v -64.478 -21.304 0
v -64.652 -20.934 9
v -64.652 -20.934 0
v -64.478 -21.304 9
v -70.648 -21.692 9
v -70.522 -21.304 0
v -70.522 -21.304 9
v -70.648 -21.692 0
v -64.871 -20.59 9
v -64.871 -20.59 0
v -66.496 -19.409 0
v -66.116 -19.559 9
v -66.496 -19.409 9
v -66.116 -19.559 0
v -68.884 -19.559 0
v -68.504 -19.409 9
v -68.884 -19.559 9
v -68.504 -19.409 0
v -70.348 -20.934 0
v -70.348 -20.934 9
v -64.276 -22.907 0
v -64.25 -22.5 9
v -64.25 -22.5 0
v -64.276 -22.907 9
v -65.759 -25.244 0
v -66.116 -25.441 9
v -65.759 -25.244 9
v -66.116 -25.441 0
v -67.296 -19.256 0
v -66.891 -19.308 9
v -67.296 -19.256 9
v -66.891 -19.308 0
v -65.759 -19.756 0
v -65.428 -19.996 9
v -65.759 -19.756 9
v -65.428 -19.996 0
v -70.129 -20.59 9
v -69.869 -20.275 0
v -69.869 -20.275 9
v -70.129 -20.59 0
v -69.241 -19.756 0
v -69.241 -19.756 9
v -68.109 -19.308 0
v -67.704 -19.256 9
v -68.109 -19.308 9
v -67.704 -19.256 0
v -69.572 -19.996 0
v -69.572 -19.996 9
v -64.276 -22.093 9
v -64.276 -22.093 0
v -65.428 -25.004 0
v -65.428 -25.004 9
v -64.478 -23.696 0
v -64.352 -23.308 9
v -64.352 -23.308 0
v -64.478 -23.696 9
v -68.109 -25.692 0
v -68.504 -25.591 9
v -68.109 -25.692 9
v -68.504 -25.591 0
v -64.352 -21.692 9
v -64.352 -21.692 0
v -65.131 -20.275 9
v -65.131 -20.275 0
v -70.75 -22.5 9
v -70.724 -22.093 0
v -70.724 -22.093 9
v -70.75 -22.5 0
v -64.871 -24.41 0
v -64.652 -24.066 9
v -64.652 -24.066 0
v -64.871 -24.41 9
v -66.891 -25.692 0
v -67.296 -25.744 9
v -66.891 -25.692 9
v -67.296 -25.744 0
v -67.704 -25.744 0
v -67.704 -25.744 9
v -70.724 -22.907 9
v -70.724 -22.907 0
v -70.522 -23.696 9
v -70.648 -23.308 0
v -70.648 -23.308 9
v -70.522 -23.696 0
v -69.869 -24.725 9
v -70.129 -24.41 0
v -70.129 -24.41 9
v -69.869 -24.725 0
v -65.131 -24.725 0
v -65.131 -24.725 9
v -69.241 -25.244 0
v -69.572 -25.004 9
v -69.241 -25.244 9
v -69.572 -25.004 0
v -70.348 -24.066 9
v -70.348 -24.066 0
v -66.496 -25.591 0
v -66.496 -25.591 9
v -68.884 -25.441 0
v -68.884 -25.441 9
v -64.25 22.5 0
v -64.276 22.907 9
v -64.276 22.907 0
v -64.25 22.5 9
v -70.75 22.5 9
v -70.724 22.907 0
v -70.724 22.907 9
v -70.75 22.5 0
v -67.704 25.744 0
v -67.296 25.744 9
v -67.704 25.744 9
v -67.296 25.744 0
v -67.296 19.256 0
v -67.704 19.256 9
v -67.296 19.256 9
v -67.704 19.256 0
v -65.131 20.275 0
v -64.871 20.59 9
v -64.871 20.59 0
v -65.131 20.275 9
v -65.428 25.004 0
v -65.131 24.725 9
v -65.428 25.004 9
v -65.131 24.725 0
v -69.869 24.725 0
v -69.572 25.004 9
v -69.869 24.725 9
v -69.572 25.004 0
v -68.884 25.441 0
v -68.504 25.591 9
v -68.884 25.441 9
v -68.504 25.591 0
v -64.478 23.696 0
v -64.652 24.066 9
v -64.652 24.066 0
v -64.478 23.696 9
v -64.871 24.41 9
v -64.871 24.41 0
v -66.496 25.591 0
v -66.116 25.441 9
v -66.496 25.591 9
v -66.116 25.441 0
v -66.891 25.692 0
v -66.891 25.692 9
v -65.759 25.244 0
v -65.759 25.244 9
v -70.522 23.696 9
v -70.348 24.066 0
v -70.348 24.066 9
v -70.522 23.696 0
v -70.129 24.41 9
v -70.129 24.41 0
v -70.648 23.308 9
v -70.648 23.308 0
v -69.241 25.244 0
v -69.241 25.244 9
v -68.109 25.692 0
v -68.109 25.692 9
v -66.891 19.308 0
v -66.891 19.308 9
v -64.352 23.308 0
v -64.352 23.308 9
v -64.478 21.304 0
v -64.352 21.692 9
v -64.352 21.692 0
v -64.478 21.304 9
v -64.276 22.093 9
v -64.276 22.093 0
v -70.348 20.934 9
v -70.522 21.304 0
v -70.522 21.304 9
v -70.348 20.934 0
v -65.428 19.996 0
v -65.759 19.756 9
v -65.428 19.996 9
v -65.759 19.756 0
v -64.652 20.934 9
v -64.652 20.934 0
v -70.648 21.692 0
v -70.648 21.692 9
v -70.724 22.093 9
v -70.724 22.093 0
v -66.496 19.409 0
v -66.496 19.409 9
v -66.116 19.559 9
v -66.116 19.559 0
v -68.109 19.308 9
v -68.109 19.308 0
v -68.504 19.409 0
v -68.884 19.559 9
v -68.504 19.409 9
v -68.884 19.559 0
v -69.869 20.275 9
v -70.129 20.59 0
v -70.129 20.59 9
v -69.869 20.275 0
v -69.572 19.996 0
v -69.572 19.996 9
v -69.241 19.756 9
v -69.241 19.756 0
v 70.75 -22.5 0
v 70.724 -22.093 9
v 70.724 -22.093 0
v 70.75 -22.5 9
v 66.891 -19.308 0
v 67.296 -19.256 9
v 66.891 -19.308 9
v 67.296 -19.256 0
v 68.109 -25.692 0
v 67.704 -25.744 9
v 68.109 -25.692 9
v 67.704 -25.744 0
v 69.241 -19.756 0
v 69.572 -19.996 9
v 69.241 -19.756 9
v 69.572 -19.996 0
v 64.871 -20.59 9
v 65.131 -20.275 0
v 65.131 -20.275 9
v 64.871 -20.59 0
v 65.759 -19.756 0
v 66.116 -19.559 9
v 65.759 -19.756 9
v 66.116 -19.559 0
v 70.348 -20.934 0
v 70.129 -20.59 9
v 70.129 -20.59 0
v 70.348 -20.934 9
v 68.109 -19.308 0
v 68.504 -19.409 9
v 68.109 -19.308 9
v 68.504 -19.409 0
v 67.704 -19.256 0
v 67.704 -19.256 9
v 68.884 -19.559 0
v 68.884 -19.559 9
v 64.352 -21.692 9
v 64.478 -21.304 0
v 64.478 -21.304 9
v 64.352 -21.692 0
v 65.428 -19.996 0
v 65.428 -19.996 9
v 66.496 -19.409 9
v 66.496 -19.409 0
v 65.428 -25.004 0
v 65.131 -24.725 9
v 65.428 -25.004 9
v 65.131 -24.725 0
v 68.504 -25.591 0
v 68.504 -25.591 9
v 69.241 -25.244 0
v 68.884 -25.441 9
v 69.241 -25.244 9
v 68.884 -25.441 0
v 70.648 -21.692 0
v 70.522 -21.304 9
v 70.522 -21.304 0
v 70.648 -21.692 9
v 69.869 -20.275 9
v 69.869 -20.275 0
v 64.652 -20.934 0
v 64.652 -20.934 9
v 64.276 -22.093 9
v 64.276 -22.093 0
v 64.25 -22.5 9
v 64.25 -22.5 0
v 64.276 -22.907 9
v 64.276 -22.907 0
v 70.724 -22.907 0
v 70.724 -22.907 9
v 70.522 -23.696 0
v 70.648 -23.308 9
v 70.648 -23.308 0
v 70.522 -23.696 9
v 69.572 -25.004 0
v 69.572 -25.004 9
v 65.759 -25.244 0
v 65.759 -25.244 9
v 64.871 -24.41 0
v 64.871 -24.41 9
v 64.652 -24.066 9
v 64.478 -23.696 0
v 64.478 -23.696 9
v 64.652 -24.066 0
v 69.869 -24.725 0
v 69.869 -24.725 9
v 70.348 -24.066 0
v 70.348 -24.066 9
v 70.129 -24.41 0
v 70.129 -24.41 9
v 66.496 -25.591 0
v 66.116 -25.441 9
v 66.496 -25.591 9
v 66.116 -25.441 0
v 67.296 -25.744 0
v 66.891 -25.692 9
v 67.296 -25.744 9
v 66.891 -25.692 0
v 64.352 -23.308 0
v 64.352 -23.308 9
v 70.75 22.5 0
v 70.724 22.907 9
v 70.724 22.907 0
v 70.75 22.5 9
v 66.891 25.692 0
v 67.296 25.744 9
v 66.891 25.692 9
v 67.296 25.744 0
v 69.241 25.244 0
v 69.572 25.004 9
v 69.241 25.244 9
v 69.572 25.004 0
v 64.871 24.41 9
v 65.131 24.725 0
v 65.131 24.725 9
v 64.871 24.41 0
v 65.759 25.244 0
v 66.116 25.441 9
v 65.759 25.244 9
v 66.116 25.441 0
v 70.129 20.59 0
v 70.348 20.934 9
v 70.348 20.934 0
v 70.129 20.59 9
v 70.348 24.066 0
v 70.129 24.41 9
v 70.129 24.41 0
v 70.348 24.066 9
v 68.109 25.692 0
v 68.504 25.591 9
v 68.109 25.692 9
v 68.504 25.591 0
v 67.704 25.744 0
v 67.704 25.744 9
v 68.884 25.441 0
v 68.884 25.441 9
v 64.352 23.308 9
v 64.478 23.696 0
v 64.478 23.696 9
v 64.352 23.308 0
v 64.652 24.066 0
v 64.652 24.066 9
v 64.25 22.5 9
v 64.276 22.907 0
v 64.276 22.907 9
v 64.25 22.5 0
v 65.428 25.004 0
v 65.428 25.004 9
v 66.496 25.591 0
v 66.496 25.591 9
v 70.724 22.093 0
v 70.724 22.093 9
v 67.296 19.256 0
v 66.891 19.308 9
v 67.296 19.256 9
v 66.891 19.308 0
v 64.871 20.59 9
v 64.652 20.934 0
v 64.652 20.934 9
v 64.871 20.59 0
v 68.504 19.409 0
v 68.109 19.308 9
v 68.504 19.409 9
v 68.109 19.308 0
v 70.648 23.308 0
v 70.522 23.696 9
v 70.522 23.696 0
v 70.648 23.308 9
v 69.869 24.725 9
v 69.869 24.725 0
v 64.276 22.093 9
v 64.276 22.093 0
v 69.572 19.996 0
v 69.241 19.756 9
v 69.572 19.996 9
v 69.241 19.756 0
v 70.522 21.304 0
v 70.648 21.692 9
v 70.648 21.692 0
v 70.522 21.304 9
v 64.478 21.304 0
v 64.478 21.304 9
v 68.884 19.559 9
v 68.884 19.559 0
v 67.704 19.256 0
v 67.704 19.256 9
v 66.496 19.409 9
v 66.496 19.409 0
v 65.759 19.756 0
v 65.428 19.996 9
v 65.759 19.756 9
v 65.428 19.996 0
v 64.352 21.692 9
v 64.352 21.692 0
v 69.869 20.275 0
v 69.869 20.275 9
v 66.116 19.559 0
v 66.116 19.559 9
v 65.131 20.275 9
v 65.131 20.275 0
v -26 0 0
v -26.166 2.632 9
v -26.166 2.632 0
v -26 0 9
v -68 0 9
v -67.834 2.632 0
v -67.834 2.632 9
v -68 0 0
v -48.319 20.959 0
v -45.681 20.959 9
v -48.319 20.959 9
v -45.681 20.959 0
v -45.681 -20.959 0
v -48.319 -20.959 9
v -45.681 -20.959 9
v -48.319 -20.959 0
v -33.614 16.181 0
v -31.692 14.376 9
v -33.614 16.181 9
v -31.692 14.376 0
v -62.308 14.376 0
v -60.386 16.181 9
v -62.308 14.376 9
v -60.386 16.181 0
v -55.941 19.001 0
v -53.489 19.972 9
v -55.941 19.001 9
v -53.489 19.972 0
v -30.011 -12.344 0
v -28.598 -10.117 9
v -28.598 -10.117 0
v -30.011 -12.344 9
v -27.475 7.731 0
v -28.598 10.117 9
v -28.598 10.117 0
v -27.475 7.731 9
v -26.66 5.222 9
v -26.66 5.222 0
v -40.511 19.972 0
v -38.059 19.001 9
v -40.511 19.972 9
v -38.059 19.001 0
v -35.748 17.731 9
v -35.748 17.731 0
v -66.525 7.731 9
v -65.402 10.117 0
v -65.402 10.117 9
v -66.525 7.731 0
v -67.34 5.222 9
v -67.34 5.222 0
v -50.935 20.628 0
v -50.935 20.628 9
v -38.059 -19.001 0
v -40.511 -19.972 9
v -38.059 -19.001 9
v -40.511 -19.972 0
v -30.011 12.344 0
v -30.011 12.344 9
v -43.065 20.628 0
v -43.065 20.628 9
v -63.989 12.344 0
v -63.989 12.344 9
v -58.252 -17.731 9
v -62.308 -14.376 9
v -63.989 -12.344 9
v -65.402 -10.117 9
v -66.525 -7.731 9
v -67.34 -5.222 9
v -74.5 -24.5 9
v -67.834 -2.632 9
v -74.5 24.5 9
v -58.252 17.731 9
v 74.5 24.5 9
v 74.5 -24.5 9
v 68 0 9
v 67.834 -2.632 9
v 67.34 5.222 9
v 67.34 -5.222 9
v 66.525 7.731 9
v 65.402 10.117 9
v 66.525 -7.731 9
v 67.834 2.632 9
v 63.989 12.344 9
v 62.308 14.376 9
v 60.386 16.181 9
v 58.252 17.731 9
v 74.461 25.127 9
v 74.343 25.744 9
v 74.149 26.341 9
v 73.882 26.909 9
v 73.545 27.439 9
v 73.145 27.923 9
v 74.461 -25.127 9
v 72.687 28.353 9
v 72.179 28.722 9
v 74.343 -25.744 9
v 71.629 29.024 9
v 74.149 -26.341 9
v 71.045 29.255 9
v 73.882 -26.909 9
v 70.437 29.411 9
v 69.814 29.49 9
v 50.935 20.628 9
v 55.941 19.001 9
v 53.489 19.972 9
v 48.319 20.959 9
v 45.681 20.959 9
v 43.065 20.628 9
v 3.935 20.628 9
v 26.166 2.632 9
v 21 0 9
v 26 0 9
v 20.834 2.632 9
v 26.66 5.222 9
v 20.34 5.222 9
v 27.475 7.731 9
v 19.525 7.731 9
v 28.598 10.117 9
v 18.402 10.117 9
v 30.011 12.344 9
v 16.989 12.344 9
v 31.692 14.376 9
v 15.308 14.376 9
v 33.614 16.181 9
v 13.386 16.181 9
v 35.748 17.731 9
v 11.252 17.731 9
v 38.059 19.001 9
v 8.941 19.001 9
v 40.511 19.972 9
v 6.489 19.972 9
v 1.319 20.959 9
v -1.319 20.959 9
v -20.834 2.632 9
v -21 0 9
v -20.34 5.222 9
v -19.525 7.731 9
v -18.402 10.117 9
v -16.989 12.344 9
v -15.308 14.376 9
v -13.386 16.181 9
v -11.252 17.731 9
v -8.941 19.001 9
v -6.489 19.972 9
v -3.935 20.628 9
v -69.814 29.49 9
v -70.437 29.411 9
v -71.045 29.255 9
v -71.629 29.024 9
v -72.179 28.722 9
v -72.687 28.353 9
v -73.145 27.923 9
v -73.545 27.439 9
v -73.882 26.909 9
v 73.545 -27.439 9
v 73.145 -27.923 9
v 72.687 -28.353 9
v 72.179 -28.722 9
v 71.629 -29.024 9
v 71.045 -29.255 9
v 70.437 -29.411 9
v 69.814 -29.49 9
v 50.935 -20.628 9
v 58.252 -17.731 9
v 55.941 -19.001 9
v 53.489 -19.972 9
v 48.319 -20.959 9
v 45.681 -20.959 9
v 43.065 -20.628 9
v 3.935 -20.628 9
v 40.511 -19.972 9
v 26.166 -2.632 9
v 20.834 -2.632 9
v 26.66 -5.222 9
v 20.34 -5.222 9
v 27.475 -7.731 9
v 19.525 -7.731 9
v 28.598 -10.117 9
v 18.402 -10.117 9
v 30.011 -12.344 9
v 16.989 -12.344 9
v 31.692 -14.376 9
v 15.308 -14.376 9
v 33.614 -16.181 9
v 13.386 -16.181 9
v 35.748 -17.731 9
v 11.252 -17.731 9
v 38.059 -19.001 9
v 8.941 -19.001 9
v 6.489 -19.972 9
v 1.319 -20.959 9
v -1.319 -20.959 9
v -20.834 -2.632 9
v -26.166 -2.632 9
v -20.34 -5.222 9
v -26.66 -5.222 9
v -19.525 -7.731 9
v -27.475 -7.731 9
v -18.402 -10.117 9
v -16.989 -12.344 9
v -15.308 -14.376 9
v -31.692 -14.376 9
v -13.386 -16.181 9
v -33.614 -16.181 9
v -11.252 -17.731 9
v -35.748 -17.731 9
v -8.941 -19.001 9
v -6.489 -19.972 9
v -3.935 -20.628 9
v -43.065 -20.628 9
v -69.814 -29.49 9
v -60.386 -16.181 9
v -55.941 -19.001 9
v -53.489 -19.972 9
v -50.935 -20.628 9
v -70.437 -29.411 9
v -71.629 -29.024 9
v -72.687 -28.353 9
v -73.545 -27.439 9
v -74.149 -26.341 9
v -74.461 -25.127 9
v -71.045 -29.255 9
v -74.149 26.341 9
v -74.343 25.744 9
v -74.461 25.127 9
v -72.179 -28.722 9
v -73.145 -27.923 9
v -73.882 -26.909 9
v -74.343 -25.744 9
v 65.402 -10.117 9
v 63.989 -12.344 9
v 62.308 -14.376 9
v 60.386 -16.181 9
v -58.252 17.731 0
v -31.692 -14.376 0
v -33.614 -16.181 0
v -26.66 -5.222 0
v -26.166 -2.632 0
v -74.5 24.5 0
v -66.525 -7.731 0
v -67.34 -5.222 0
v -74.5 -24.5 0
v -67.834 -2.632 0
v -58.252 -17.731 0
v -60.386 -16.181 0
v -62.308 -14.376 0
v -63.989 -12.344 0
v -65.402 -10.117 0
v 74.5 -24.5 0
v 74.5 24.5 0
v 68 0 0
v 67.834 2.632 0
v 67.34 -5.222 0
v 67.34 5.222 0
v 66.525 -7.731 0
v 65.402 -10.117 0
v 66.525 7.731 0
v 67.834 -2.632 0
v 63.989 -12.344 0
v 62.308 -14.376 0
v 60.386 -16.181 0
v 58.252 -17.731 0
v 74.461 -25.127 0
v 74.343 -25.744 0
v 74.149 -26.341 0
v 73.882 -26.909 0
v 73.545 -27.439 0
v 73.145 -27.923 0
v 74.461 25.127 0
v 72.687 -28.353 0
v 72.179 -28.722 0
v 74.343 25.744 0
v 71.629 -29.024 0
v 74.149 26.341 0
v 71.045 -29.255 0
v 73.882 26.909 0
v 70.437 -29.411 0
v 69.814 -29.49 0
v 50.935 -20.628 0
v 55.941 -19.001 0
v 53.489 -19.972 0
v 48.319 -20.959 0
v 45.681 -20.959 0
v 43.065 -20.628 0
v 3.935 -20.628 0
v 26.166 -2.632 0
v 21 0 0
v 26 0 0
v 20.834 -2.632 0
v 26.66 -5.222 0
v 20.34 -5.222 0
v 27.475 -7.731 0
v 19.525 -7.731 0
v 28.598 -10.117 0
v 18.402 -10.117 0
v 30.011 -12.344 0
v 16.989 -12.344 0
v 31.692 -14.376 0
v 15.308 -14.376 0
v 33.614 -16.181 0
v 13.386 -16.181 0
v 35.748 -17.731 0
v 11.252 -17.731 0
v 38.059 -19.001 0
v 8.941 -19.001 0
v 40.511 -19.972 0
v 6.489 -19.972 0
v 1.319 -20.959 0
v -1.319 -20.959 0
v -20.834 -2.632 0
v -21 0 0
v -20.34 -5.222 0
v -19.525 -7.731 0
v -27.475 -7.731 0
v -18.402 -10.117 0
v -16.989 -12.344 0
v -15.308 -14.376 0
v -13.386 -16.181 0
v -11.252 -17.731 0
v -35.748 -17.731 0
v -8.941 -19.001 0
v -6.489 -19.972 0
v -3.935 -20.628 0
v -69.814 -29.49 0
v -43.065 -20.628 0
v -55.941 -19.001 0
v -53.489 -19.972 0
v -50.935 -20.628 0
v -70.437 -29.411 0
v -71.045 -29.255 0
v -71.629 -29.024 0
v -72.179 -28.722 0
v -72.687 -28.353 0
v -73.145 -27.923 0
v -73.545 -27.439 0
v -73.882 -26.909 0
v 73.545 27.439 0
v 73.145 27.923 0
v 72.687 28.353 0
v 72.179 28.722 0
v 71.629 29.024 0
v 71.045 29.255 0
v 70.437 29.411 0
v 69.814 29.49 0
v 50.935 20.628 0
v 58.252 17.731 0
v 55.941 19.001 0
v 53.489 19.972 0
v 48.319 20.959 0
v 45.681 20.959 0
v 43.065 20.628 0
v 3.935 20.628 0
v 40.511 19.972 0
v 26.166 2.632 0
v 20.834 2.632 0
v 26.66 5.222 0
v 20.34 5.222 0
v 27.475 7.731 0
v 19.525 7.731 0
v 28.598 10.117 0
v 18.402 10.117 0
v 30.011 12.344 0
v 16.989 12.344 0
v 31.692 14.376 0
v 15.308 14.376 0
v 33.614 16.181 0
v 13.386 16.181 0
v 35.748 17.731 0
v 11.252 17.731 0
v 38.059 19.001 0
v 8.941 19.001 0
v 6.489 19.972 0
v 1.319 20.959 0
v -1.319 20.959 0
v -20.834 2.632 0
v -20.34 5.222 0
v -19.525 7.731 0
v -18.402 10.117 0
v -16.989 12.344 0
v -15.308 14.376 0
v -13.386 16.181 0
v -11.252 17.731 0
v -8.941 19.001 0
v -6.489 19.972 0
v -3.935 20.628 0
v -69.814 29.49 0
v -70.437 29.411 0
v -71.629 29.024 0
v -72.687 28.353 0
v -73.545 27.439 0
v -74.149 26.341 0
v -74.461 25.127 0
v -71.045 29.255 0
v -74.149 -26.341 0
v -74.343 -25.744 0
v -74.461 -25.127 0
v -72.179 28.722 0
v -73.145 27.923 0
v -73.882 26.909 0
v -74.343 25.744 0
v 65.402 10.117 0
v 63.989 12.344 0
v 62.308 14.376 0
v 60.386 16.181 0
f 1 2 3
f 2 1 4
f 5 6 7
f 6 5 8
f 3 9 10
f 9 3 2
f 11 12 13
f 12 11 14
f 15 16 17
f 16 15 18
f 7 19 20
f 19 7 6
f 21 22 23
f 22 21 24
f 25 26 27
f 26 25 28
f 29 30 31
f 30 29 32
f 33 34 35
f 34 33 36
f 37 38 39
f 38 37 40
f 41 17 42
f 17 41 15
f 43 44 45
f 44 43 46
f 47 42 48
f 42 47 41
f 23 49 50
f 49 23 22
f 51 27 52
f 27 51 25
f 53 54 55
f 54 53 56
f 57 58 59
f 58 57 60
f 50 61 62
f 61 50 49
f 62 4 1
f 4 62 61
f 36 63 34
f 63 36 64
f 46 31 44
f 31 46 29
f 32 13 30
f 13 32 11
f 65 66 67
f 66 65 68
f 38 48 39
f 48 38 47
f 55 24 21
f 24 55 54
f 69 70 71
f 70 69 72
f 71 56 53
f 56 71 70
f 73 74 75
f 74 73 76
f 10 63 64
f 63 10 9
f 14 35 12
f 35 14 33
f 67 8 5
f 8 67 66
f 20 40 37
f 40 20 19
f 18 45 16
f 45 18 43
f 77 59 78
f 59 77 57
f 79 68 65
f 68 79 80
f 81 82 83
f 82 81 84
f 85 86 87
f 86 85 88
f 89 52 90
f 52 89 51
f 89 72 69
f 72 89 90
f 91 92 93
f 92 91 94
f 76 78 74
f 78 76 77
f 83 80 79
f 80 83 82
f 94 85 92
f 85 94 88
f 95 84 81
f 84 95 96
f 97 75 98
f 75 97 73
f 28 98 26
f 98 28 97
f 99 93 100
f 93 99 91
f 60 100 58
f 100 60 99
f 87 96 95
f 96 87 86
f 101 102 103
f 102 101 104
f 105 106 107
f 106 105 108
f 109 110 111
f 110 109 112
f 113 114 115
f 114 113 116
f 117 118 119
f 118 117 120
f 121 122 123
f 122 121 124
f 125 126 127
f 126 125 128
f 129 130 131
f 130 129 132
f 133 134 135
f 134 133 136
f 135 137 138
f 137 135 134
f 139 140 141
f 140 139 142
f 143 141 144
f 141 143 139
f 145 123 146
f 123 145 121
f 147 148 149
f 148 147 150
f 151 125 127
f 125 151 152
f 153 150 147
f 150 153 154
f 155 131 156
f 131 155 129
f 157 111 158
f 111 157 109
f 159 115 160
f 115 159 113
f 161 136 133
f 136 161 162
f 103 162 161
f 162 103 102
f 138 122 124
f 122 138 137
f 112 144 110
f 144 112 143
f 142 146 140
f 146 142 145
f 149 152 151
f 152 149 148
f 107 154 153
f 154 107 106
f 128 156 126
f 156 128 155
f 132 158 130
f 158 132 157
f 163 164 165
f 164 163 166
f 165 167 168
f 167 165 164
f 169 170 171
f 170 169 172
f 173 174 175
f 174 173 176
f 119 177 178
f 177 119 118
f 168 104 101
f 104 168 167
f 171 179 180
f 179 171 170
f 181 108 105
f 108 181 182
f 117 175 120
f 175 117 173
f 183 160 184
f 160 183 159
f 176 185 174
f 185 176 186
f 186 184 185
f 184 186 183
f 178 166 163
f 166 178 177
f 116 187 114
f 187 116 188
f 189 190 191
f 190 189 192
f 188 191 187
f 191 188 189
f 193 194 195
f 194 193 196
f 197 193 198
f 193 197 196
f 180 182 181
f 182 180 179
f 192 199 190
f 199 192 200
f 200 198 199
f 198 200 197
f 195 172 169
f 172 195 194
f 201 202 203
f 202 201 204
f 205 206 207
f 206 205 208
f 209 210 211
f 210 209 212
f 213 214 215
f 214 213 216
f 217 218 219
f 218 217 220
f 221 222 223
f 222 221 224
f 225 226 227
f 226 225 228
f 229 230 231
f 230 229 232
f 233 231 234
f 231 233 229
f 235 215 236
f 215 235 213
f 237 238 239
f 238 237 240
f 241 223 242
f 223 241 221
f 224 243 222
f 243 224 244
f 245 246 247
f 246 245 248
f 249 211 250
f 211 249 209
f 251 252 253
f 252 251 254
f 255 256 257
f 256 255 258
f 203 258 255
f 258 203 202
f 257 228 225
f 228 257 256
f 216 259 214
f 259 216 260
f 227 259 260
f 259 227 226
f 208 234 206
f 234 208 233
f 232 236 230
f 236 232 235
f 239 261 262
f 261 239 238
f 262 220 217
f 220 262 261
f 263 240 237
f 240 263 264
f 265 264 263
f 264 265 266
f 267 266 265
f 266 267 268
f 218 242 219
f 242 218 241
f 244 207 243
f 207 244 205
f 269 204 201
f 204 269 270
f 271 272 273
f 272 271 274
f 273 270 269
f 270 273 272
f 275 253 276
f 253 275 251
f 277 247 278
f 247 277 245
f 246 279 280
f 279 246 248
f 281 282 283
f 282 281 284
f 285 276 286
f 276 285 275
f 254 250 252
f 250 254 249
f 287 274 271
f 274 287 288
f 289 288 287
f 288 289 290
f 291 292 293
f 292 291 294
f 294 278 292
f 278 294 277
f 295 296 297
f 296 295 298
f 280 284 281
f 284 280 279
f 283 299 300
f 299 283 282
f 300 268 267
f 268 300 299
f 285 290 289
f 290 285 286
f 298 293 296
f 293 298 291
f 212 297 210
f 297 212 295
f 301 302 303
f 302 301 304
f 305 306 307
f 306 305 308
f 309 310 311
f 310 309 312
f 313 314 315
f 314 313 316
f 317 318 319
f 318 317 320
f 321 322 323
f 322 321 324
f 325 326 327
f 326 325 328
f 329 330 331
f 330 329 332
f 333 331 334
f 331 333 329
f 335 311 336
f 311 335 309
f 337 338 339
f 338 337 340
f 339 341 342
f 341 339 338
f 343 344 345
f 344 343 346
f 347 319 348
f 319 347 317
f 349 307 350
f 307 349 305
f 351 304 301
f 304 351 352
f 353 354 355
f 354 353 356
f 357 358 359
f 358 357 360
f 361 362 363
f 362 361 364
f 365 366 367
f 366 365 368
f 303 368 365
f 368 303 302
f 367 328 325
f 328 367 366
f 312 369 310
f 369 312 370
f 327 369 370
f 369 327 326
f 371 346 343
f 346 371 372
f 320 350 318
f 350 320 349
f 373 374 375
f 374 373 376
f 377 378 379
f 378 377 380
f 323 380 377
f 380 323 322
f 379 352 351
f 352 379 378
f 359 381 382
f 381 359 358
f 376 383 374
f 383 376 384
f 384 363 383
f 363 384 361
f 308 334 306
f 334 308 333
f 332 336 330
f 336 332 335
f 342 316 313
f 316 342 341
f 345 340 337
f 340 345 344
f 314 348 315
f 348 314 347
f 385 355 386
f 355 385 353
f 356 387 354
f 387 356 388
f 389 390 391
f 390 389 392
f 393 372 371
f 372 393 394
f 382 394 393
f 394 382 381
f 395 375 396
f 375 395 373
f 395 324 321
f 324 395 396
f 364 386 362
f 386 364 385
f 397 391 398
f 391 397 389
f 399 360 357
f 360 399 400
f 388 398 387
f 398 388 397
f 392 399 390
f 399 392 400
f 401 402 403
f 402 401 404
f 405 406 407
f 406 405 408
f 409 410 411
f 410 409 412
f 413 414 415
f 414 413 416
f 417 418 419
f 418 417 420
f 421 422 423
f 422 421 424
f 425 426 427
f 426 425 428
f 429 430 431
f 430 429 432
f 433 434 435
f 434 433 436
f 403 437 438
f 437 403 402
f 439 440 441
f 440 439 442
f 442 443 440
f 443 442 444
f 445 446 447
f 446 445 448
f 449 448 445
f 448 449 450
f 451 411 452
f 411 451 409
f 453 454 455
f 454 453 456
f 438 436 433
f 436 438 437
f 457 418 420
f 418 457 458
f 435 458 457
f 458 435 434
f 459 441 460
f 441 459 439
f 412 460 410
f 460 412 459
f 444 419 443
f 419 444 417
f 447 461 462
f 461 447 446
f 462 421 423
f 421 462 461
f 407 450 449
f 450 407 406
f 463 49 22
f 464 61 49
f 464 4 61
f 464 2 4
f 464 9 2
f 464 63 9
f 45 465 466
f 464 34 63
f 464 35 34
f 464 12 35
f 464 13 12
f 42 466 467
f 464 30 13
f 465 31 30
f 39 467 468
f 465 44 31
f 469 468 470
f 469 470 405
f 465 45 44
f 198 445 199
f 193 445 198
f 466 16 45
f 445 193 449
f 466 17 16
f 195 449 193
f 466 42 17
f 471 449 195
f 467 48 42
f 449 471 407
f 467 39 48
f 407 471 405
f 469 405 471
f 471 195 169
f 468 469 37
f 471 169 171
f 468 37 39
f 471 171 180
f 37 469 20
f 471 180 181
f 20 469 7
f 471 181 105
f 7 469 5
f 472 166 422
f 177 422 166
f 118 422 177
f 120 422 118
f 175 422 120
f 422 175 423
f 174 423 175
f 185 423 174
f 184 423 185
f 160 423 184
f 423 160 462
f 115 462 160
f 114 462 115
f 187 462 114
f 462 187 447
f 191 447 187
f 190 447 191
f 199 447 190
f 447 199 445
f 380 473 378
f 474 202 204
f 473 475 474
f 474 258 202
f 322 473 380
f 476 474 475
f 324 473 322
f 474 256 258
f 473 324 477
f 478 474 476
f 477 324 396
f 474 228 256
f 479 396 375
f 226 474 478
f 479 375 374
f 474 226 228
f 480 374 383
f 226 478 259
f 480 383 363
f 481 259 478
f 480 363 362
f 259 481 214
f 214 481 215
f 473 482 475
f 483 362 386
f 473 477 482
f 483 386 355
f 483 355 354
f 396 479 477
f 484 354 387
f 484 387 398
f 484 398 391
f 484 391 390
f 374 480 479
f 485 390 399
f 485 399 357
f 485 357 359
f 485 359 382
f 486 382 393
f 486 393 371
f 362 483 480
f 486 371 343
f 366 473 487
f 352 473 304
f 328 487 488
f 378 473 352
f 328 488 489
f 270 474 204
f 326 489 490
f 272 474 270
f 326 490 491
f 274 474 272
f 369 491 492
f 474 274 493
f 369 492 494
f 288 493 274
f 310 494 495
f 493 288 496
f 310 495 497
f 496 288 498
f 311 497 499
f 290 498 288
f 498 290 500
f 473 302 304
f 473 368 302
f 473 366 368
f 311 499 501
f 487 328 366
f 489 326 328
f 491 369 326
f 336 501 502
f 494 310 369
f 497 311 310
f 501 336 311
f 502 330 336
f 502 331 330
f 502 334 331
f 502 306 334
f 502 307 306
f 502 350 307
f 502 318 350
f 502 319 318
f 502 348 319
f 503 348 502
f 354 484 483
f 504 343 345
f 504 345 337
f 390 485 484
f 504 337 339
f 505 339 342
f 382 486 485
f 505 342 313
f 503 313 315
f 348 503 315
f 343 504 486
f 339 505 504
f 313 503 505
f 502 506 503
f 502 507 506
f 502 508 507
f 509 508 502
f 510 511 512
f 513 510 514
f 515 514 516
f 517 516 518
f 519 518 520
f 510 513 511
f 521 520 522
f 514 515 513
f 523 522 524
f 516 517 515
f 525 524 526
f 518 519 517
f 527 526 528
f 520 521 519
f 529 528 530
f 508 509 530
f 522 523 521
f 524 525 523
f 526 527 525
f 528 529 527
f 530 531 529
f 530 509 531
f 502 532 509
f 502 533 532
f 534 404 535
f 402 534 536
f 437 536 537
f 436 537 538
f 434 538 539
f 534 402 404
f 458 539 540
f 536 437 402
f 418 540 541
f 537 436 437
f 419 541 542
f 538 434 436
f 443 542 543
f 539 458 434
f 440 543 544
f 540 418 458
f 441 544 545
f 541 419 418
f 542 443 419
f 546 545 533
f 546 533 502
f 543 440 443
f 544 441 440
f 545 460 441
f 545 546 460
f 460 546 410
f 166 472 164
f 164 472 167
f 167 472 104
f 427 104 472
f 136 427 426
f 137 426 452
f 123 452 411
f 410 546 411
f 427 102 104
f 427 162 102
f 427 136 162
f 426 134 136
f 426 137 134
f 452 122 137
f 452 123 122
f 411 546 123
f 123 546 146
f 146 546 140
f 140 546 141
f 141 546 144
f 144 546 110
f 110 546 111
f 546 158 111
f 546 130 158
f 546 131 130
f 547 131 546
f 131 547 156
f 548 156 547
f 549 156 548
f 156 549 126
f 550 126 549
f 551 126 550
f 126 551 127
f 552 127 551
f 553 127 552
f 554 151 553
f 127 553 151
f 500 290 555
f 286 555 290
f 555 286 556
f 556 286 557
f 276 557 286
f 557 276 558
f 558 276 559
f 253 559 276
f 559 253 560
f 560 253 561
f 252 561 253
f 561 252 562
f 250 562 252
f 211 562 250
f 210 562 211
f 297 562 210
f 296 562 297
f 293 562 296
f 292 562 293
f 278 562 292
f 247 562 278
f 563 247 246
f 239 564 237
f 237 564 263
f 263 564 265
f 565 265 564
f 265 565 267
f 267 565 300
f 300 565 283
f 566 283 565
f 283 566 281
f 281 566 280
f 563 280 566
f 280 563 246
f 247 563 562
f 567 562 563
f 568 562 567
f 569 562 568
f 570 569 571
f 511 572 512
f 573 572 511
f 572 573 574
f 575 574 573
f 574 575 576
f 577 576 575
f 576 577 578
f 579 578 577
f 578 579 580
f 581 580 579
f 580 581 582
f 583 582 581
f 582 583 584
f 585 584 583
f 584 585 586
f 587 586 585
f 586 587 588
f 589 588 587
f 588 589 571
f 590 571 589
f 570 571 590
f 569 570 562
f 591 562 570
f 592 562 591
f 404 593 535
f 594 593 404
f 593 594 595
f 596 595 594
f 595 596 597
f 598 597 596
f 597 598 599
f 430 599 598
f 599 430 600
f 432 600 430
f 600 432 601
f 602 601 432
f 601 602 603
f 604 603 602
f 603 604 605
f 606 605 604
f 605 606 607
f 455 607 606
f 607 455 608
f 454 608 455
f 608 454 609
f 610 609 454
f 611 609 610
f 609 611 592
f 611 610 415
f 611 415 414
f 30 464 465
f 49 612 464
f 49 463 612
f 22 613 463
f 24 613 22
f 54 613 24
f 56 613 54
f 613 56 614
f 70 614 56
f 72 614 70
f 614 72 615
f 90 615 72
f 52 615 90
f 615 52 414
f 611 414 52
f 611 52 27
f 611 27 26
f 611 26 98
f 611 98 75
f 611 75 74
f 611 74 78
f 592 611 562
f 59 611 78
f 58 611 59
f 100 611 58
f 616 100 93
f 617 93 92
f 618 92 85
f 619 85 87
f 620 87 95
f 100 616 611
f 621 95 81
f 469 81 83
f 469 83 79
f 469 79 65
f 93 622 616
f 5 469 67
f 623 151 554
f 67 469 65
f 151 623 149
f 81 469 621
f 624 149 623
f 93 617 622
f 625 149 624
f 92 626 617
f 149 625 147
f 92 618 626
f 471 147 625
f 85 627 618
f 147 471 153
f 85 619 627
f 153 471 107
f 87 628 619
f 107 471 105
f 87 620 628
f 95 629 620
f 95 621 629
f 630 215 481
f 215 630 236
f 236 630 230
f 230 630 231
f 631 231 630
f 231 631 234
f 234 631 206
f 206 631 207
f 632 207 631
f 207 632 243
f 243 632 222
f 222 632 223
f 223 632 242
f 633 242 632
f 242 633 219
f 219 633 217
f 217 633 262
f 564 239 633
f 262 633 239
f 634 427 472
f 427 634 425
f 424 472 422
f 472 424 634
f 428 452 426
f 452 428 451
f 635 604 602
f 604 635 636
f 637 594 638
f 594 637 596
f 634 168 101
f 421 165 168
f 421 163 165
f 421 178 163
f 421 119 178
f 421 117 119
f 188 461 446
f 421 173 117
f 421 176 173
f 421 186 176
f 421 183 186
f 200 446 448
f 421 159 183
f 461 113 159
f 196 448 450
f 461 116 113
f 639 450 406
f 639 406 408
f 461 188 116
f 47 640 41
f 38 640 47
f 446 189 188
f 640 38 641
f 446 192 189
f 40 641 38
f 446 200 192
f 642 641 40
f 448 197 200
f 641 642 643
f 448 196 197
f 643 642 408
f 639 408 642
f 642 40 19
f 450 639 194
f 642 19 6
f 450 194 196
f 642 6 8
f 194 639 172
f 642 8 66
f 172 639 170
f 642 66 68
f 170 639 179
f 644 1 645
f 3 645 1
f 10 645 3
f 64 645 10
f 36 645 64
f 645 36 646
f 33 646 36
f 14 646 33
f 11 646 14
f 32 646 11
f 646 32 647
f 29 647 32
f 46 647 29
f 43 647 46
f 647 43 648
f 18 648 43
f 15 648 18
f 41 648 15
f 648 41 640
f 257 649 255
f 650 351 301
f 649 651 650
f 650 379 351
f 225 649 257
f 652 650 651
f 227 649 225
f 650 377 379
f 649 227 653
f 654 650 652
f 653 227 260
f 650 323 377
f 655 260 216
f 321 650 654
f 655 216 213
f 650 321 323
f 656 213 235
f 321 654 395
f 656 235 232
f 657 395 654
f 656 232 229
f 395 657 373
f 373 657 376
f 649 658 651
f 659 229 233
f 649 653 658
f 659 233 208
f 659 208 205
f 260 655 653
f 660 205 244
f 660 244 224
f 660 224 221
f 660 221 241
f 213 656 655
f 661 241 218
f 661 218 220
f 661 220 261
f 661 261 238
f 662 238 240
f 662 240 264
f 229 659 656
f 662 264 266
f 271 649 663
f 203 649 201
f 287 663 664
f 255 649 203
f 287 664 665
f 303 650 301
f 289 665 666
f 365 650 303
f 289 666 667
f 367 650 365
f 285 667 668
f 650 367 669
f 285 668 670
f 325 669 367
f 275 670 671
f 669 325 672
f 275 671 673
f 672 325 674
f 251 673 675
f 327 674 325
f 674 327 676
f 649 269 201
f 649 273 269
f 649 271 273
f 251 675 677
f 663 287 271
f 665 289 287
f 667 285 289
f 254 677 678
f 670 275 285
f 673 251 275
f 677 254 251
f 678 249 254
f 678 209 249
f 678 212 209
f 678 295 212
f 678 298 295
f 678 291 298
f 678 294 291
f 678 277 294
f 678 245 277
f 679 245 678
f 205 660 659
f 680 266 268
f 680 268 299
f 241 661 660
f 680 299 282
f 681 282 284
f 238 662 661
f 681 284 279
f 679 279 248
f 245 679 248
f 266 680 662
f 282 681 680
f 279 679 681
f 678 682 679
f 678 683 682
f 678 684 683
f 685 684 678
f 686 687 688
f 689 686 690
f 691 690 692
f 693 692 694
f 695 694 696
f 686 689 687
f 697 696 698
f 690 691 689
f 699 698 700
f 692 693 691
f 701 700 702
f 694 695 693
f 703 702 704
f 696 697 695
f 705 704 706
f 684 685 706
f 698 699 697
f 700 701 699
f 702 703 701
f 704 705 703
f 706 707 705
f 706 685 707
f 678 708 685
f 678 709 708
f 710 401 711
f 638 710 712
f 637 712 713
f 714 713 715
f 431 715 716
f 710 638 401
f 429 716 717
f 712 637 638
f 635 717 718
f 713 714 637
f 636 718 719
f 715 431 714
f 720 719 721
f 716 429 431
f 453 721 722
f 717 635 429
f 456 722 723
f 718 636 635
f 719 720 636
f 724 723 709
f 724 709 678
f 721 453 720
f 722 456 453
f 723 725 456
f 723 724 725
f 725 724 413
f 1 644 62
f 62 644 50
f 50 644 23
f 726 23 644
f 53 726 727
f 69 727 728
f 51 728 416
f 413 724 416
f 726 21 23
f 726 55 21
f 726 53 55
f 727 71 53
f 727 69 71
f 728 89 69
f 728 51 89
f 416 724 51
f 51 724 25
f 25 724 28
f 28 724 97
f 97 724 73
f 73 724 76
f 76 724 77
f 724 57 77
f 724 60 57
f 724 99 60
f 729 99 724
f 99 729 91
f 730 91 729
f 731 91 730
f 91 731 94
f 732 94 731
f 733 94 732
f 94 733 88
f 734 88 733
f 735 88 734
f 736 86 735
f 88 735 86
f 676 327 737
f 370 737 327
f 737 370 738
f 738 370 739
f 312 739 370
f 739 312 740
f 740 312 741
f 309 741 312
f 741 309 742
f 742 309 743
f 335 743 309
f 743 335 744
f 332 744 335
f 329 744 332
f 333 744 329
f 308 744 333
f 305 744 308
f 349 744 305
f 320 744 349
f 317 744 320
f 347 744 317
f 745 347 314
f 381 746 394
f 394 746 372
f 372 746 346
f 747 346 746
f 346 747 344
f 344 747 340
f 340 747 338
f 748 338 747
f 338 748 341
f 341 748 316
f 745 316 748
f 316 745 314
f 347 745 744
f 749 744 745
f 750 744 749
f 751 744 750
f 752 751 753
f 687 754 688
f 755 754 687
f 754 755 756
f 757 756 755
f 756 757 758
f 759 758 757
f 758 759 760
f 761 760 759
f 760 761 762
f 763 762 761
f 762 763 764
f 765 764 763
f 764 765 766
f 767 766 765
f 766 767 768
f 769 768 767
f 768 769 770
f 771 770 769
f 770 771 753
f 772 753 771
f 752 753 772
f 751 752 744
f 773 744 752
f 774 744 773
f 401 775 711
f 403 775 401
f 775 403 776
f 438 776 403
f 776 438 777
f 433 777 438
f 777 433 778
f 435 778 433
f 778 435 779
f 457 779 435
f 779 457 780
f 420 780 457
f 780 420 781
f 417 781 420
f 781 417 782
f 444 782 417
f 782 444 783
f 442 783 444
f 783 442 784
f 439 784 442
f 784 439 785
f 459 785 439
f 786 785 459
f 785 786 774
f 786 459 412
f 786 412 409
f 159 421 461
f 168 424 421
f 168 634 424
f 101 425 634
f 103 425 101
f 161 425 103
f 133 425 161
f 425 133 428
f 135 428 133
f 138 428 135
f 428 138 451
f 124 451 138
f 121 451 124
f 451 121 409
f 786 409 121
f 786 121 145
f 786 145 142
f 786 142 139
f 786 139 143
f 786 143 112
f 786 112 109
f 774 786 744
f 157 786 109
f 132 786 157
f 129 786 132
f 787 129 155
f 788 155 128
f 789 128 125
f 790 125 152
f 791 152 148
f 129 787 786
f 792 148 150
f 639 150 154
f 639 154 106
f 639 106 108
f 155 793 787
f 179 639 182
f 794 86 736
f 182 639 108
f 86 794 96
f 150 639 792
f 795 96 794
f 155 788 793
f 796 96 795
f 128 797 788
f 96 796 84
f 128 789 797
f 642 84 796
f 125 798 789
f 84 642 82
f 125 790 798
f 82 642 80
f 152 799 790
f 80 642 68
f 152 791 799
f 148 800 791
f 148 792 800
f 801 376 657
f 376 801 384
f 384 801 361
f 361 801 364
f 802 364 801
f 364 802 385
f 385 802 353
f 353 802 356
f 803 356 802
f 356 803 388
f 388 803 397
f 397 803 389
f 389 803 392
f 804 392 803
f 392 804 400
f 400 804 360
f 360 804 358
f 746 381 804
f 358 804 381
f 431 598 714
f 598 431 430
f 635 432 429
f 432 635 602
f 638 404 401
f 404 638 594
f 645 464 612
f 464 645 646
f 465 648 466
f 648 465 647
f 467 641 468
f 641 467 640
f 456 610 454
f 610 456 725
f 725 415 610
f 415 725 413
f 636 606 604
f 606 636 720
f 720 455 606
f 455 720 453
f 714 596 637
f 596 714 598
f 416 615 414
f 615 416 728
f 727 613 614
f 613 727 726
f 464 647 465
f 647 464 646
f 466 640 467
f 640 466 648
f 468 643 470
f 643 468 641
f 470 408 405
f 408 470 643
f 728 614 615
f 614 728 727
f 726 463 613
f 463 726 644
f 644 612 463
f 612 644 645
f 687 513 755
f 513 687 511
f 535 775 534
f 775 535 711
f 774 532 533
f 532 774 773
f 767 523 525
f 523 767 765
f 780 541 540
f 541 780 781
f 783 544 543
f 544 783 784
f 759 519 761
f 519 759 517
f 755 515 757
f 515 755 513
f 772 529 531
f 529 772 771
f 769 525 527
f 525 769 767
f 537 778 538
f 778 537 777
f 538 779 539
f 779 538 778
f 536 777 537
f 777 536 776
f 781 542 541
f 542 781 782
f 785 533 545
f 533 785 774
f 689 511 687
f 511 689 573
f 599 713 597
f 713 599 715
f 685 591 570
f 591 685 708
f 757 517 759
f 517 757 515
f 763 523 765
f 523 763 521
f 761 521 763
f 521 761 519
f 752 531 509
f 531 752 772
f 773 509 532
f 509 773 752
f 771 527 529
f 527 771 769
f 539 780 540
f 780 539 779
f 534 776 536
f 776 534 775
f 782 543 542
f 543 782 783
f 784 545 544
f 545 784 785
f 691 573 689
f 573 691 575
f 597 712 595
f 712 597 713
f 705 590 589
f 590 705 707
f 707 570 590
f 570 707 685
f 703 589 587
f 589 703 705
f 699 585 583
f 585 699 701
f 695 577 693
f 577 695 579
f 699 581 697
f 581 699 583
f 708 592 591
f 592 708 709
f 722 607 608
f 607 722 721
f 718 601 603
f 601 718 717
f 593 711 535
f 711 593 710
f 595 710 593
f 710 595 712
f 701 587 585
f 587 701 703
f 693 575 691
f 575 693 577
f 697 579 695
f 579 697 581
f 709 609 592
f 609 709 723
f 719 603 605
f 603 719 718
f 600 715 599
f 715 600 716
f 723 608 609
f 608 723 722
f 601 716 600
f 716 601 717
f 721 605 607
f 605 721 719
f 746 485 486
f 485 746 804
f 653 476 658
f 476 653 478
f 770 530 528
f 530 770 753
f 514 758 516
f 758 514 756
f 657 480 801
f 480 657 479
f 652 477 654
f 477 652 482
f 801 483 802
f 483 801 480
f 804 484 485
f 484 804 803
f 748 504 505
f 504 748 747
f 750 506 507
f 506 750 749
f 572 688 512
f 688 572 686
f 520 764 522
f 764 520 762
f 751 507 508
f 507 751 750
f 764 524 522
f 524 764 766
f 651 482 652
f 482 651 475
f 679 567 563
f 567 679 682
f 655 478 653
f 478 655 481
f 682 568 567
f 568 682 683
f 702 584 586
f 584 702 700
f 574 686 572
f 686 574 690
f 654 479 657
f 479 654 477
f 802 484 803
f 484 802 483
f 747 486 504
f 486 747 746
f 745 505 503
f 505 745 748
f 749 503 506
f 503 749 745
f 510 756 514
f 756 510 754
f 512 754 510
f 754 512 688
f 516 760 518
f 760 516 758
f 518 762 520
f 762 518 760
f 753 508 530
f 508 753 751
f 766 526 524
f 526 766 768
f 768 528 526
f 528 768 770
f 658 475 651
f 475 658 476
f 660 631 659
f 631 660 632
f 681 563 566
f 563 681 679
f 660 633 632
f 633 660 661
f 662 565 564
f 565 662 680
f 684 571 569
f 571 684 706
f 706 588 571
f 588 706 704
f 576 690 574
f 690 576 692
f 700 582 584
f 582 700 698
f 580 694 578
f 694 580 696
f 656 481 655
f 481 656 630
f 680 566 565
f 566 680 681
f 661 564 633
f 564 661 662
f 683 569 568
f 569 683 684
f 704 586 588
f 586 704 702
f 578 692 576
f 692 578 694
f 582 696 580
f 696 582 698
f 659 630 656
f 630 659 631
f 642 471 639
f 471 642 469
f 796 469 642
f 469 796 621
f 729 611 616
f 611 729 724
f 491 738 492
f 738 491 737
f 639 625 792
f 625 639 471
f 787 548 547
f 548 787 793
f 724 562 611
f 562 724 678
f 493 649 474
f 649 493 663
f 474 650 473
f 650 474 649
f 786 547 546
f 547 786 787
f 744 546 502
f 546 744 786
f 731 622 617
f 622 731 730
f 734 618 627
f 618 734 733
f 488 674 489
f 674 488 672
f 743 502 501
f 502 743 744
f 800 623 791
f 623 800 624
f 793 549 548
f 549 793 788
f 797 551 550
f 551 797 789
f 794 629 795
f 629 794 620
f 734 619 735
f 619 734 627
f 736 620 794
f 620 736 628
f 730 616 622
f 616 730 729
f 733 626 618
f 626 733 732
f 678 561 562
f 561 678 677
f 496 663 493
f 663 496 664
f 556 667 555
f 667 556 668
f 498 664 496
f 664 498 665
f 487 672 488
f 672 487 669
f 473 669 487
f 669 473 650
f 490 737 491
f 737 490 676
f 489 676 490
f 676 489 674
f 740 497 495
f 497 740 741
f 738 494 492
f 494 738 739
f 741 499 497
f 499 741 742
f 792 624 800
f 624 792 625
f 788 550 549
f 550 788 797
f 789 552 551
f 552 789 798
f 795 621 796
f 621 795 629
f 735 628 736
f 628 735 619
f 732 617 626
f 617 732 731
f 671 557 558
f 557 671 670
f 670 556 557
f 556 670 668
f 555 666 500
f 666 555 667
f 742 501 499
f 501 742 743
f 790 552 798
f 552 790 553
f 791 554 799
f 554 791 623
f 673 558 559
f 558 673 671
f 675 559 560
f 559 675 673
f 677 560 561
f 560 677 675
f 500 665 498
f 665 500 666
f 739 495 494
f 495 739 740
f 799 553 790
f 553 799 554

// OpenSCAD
$fn = 50;


difference() {
	union() {
		hull() {
			translate(v = [-69.5000000000, 24.5000000000, 0]) {
				cylinder(h = 9, r = 5);
			}
			translate(v = [69.5000000000, 24.5000000000, 0]) {
				cylinder(h = 9, r = 5);
			}
			translate(v = [-69.5000000000, -24.5000000000, 0]) {
				cylinder(h = 9, r = 5);
			}
			translate(v = [69.5000000000, -24.5000000000, 0]) {
				cylinder(h = 9, r = 5);
			}
		}
	}
	union() {
		#translate(v = [-67.5000000000, -22.5000000000, -100.0000000000]) {
			cylinder(h = 200, r = 3.2500000000);
		}
		#translate(v = [-67.5000000000, 22.5000000000, -100.0000000000]) {
			cylinder(h = 200, r = 3.2500000000);
		}
		#translate(v = [67.5000000000, -22.5000000000, -100.0000000000]) {
			cylinder(h = 200, r = 3.2500000000);
		}
		#translate(v = [67.5000000000, 22.5000000000, -100.0000000000]) {
			cylinder(h = 200, r = 3.2500000000);
		}
		#translate(v = [-47.0000000000, 0, 0]) {
			cylinder(h = 9, r = 21.0000000000);
		}
		#cylinder(h = 9, r = 21.0000000000);
		#translate(v = [47.0000000000, 0, 0]) {
			cylinder(h = 9, r = 21.0000000000);
		}
	}
}
